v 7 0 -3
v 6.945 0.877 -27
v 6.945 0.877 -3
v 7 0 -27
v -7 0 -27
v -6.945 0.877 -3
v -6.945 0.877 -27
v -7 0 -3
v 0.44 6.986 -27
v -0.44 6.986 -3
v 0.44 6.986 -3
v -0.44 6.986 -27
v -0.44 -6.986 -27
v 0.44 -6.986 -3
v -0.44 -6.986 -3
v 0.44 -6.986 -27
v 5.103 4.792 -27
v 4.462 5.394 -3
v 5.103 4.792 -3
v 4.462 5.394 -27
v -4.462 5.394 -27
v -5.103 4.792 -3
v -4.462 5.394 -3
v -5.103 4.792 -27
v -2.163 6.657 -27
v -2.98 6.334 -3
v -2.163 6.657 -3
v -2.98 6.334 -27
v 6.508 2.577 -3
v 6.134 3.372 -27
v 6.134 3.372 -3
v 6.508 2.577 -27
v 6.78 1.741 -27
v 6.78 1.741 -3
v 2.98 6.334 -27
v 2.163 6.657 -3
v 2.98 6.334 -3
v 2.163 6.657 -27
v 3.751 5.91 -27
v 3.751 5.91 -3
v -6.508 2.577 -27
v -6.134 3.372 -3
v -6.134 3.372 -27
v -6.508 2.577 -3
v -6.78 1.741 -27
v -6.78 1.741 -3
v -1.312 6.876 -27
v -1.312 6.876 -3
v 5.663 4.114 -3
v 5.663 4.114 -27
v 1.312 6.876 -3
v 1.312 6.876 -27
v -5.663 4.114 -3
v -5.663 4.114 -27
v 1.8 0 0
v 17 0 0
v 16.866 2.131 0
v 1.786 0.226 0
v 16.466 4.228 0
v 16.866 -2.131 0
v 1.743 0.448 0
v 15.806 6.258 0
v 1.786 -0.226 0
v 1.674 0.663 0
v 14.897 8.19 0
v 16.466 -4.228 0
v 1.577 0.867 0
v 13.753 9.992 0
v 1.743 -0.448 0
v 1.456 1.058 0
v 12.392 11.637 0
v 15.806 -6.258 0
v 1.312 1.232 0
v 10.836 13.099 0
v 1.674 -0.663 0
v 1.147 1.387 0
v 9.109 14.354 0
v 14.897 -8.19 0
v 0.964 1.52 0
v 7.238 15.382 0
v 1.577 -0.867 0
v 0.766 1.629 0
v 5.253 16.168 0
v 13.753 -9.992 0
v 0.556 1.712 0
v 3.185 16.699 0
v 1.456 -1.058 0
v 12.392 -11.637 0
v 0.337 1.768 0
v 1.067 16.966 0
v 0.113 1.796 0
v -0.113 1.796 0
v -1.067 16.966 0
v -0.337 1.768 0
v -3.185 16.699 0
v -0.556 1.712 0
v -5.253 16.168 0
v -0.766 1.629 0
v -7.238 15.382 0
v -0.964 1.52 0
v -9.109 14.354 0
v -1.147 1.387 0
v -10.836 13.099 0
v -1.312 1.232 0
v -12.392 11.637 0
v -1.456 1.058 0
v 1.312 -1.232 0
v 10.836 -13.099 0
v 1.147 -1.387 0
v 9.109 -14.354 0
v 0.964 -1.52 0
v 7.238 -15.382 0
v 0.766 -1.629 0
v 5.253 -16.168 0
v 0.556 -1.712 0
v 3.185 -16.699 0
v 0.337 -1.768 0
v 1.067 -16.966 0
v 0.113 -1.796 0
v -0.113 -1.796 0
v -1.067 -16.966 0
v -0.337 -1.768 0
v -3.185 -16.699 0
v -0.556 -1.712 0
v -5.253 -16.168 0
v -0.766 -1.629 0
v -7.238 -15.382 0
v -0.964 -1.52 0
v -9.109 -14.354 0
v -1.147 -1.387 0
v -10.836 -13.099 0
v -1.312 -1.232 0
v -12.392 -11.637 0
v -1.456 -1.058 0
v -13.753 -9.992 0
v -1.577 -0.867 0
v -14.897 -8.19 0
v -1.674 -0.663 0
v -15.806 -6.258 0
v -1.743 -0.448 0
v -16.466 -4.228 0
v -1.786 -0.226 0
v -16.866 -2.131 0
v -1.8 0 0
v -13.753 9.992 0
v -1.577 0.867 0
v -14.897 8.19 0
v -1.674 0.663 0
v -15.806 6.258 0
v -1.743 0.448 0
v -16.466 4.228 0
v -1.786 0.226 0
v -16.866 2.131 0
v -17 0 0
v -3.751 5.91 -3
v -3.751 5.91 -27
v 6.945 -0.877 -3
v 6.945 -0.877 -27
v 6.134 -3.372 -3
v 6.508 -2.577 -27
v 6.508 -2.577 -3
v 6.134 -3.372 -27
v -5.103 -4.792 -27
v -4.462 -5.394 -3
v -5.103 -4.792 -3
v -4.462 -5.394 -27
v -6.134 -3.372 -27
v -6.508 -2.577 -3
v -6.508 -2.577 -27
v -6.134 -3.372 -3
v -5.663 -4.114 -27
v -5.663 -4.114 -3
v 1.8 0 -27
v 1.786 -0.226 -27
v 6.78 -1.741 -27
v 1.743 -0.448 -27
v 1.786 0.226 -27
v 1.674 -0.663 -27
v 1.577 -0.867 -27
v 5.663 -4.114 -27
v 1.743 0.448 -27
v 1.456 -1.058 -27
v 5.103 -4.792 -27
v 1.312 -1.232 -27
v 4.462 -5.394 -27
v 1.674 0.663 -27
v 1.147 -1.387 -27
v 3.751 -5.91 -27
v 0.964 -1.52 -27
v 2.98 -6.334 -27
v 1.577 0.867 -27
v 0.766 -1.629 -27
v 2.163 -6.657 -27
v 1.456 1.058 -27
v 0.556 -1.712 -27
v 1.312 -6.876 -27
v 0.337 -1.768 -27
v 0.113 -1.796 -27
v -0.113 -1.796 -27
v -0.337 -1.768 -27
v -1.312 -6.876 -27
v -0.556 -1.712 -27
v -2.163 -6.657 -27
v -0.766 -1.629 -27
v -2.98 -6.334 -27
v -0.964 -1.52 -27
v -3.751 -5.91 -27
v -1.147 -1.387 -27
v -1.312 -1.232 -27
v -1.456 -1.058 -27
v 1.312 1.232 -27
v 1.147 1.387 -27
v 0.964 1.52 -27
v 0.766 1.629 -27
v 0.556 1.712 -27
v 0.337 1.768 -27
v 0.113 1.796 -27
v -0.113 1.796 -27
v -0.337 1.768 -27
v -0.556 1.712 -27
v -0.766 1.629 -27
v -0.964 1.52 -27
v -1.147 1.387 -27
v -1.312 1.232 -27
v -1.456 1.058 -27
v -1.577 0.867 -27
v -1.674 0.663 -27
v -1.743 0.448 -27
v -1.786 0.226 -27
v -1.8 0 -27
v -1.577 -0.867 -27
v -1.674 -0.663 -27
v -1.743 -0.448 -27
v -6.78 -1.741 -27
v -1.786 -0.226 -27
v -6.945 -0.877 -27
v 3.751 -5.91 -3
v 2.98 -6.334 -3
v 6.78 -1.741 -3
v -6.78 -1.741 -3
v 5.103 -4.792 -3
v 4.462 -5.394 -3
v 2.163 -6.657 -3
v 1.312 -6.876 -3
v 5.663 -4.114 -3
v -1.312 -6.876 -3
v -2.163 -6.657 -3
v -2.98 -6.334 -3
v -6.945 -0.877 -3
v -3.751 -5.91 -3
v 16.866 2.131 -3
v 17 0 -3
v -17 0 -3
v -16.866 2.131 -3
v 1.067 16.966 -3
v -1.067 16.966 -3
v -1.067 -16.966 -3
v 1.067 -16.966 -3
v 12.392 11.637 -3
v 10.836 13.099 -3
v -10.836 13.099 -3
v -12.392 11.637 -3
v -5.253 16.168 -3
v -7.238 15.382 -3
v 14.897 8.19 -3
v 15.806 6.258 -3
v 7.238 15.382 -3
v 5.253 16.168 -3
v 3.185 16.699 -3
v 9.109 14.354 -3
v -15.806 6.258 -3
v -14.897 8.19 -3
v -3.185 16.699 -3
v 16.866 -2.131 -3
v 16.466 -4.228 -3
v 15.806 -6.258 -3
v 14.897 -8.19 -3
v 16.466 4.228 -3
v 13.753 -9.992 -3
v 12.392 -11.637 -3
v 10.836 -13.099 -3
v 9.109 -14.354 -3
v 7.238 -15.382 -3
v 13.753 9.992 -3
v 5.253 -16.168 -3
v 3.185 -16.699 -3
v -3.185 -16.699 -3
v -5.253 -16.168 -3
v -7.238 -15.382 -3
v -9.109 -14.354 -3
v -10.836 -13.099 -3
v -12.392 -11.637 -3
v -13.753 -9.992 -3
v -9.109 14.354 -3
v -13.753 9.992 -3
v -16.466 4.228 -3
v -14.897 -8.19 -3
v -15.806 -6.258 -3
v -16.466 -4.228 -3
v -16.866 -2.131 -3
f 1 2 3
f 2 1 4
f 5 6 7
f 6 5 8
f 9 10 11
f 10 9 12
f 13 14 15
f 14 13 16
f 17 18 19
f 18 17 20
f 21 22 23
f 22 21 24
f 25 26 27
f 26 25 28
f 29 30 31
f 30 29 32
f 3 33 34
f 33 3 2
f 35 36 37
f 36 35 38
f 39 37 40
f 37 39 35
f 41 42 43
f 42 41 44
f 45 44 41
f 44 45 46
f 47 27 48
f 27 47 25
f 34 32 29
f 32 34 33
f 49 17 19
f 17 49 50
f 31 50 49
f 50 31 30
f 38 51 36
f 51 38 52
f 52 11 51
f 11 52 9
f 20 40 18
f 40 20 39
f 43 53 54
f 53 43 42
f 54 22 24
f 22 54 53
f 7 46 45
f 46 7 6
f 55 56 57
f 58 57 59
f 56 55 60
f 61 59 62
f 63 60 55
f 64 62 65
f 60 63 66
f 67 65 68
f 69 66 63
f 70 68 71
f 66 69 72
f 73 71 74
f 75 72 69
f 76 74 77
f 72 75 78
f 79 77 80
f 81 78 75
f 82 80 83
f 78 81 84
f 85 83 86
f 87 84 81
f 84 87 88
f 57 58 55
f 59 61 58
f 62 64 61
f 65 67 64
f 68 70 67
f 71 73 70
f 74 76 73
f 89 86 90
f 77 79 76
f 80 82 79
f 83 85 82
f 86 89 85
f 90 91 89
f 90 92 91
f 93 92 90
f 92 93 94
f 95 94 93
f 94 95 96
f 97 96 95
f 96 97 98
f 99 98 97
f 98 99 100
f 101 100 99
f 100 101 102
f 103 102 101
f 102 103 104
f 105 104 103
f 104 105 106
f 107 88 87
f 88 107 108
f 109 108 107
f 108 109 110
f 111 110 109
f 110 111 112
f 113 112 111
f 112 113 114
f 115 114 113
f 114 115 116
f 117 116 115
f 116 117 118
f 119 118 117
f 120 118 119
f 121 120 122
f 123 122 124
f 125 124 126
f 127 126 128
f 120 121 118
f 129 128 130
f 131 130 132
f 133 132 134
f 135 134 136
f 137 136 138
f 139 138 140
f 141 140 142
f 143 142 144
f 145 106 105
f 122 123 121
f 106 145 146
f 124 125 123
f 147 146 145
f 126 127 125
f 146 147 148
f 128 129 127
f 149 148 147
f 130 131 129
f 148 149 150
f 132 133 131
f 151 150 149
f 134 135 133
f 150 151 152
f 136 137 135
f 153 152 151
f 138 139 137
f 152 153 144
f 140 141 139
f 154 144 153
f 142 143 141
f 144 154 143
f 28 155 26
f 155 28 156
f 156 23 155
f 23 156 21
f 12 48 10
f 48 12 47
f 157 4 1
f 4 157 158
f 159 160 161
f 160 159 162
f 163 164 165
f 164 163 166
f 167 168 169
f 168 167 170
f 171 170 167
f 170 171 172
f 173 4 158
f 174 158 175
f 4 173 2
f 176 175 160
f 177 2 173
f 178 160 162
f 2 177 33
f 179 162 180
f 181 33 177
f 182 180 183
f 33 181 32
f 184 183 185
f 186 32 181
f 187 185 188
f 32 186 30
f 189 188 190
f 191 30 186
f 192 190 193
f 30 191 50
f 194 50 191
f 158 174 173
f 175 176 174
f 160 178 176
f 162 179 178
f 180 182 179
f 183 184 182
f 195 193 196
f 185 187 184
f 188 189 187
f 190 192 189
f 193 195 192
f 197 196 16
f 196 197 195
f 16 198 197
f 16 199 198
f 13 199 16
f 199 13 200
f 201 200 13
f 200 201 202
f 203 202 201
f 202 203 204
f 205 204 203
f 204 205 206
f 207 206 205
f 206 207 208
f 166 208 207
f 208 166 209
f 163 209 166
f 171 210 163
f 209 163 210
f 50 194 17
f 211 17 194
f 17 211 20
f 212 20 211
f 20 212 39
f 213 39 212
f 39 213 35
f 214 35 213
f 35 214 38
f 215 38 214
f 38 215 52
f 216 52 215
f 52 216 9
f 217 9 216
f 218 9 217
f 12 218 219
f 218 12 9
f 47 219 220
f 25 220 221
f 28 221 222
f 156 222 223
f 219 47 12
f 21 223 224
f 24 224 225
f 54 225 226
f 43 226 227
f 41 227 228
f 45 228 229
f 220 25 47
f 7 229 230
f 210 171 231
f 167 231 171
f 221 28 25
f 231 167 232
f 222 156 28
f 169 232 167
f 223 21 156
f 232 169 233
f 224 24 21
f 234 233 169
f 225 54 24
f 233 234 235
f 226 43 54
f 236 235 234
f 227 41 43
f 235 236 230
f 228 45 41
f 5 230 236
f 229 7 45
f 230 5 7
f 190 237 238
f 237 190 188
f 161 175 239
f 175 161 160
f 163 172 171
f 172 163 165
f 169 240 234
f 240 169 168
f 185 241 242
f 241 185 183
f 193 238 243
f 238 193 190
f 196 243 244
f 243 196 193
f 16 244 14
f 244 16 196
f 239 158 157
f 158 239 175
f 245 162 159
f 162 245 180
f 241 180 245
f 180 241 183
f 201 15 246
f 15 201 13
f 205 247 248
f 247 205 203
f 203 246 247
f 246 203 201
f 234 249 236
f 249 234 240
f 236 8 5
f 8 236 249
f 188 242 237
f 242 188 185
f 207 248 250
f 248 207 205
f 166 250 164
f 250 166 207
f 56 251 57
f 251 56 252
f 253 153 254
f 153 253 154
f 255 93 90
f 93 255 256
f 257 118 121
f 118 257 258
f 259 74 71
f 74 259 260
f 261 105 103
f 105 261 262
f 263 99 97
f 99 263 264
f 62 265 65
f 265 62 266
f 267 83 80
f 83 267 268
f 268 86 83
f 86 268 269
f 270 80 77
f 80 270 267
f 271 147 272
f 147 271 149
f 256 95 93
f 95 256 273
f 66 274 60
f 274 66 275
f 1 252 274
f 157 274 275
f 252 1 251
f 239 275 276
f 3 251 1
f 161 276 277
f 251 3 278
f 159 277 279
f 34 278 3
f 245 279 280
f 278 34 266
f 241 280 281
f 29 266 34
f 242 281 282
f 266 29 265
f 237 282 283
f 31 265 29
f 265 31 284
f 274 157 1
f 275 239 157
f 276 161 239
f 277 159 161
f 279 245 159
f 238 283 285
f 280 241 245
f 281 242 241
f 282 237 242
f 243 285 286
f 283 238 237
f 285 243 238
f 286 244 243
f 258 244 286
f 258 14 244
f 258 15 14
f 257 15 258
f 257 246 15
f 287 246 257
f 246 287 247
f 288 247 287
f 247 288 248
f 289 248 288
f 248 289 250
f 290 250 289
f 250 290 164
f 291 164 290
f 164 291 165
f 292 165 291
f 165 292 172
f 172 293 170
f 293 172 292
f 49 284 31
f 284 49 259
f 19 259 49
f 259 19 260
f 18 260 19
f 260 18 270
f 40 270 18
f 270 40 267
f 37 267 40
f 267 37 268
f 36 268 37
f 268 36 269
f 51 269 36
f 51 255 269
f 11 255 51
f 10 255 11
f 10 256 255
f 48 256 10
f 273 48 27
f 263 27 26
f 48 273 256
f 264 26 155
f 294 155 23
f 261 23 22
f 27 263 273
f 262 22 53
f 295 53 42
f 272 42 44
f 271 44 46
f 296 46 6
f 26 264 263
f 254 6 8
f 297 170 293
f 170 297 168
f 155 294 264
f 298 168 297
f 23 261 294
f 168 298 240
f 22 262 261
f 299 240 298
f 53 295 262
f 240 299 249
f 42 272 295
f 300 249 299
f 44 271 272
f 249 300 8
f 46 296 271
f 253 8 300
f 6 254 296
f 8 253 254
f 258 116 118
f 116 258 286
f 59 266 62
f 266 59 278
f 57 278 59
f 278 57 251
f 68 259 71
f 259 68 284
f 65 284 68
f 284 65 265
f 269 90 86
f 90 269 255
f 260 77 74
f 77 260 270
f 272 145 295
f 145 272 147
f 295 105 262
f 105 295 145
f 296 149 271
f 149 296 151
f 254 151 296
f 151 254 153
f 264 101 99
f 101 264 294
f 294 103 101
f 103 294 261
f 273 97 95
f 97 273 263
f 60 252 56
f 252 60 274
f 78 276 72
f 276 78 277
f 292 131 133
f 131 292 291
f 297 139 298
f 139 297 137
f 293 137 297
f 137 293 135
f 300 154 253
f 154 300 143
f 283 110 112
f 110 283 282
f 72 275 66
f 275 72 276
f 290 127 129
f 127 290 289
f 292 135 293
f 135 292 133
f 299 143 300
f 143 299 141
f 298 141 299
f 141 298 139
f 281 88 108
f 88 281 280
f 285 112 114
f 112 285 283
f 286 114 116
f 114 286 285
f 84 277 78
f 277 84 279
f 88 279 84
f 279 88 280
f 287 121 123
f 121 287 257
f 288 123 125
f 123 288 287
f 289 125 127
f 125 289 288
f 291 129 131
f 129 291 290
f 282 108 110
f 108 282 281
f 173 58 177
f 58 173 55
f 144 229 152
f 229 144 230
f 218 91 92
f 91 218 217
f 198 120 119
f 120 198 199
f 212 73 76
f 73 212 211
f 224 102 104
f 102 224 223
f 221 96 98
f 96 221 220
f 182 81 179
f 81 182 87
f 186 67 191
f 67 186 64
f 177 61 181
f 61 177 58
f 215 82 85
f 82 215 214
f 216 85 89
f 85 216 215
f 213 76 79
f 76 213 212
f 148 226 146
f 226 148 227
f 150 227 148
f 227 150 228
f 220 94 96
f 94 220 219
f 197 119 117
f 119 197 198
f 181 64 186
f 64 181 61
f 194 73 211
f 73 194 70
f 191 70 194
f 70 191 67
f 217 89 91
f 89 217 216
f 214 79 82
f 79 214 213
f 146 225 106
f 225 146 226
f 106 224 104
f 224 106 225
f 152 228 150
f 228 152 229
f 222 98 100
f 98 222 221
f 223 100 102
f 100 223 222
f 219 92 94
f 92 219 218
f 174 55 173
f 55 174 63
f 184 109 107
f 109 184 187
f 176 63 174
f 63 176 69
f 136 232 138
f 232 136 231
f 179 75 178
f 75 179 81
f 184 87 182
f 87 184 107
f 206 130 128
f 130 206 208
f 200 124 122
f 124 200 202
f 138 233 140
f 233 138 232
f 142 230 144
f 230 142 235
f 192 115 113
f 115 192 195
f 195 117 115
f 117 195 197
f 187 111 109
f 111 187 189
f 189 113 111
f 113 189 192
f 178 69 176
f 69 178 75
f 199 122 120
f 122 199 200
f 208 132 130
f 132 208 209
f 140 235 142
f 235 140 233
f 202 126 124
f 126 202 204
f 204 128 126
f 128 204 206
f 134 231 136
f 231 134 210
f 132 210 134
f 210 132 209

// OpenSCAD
$fn = 50;


difference() {
	union() {
		translate(v = [0, 0, -27.0000000000]) {
			cylinder(h = 27, r = 7.0000000000);
		}
		translate(v = [0, 0, -3.0000000000]) {
			cylinder(h = 3, r = 17.0000000000);
		}
	}
	union() {
		#translate(v = [0, 0, -27]) {
			cylinder(h = 27, r = 1.8000000000);
		}
	}
}
